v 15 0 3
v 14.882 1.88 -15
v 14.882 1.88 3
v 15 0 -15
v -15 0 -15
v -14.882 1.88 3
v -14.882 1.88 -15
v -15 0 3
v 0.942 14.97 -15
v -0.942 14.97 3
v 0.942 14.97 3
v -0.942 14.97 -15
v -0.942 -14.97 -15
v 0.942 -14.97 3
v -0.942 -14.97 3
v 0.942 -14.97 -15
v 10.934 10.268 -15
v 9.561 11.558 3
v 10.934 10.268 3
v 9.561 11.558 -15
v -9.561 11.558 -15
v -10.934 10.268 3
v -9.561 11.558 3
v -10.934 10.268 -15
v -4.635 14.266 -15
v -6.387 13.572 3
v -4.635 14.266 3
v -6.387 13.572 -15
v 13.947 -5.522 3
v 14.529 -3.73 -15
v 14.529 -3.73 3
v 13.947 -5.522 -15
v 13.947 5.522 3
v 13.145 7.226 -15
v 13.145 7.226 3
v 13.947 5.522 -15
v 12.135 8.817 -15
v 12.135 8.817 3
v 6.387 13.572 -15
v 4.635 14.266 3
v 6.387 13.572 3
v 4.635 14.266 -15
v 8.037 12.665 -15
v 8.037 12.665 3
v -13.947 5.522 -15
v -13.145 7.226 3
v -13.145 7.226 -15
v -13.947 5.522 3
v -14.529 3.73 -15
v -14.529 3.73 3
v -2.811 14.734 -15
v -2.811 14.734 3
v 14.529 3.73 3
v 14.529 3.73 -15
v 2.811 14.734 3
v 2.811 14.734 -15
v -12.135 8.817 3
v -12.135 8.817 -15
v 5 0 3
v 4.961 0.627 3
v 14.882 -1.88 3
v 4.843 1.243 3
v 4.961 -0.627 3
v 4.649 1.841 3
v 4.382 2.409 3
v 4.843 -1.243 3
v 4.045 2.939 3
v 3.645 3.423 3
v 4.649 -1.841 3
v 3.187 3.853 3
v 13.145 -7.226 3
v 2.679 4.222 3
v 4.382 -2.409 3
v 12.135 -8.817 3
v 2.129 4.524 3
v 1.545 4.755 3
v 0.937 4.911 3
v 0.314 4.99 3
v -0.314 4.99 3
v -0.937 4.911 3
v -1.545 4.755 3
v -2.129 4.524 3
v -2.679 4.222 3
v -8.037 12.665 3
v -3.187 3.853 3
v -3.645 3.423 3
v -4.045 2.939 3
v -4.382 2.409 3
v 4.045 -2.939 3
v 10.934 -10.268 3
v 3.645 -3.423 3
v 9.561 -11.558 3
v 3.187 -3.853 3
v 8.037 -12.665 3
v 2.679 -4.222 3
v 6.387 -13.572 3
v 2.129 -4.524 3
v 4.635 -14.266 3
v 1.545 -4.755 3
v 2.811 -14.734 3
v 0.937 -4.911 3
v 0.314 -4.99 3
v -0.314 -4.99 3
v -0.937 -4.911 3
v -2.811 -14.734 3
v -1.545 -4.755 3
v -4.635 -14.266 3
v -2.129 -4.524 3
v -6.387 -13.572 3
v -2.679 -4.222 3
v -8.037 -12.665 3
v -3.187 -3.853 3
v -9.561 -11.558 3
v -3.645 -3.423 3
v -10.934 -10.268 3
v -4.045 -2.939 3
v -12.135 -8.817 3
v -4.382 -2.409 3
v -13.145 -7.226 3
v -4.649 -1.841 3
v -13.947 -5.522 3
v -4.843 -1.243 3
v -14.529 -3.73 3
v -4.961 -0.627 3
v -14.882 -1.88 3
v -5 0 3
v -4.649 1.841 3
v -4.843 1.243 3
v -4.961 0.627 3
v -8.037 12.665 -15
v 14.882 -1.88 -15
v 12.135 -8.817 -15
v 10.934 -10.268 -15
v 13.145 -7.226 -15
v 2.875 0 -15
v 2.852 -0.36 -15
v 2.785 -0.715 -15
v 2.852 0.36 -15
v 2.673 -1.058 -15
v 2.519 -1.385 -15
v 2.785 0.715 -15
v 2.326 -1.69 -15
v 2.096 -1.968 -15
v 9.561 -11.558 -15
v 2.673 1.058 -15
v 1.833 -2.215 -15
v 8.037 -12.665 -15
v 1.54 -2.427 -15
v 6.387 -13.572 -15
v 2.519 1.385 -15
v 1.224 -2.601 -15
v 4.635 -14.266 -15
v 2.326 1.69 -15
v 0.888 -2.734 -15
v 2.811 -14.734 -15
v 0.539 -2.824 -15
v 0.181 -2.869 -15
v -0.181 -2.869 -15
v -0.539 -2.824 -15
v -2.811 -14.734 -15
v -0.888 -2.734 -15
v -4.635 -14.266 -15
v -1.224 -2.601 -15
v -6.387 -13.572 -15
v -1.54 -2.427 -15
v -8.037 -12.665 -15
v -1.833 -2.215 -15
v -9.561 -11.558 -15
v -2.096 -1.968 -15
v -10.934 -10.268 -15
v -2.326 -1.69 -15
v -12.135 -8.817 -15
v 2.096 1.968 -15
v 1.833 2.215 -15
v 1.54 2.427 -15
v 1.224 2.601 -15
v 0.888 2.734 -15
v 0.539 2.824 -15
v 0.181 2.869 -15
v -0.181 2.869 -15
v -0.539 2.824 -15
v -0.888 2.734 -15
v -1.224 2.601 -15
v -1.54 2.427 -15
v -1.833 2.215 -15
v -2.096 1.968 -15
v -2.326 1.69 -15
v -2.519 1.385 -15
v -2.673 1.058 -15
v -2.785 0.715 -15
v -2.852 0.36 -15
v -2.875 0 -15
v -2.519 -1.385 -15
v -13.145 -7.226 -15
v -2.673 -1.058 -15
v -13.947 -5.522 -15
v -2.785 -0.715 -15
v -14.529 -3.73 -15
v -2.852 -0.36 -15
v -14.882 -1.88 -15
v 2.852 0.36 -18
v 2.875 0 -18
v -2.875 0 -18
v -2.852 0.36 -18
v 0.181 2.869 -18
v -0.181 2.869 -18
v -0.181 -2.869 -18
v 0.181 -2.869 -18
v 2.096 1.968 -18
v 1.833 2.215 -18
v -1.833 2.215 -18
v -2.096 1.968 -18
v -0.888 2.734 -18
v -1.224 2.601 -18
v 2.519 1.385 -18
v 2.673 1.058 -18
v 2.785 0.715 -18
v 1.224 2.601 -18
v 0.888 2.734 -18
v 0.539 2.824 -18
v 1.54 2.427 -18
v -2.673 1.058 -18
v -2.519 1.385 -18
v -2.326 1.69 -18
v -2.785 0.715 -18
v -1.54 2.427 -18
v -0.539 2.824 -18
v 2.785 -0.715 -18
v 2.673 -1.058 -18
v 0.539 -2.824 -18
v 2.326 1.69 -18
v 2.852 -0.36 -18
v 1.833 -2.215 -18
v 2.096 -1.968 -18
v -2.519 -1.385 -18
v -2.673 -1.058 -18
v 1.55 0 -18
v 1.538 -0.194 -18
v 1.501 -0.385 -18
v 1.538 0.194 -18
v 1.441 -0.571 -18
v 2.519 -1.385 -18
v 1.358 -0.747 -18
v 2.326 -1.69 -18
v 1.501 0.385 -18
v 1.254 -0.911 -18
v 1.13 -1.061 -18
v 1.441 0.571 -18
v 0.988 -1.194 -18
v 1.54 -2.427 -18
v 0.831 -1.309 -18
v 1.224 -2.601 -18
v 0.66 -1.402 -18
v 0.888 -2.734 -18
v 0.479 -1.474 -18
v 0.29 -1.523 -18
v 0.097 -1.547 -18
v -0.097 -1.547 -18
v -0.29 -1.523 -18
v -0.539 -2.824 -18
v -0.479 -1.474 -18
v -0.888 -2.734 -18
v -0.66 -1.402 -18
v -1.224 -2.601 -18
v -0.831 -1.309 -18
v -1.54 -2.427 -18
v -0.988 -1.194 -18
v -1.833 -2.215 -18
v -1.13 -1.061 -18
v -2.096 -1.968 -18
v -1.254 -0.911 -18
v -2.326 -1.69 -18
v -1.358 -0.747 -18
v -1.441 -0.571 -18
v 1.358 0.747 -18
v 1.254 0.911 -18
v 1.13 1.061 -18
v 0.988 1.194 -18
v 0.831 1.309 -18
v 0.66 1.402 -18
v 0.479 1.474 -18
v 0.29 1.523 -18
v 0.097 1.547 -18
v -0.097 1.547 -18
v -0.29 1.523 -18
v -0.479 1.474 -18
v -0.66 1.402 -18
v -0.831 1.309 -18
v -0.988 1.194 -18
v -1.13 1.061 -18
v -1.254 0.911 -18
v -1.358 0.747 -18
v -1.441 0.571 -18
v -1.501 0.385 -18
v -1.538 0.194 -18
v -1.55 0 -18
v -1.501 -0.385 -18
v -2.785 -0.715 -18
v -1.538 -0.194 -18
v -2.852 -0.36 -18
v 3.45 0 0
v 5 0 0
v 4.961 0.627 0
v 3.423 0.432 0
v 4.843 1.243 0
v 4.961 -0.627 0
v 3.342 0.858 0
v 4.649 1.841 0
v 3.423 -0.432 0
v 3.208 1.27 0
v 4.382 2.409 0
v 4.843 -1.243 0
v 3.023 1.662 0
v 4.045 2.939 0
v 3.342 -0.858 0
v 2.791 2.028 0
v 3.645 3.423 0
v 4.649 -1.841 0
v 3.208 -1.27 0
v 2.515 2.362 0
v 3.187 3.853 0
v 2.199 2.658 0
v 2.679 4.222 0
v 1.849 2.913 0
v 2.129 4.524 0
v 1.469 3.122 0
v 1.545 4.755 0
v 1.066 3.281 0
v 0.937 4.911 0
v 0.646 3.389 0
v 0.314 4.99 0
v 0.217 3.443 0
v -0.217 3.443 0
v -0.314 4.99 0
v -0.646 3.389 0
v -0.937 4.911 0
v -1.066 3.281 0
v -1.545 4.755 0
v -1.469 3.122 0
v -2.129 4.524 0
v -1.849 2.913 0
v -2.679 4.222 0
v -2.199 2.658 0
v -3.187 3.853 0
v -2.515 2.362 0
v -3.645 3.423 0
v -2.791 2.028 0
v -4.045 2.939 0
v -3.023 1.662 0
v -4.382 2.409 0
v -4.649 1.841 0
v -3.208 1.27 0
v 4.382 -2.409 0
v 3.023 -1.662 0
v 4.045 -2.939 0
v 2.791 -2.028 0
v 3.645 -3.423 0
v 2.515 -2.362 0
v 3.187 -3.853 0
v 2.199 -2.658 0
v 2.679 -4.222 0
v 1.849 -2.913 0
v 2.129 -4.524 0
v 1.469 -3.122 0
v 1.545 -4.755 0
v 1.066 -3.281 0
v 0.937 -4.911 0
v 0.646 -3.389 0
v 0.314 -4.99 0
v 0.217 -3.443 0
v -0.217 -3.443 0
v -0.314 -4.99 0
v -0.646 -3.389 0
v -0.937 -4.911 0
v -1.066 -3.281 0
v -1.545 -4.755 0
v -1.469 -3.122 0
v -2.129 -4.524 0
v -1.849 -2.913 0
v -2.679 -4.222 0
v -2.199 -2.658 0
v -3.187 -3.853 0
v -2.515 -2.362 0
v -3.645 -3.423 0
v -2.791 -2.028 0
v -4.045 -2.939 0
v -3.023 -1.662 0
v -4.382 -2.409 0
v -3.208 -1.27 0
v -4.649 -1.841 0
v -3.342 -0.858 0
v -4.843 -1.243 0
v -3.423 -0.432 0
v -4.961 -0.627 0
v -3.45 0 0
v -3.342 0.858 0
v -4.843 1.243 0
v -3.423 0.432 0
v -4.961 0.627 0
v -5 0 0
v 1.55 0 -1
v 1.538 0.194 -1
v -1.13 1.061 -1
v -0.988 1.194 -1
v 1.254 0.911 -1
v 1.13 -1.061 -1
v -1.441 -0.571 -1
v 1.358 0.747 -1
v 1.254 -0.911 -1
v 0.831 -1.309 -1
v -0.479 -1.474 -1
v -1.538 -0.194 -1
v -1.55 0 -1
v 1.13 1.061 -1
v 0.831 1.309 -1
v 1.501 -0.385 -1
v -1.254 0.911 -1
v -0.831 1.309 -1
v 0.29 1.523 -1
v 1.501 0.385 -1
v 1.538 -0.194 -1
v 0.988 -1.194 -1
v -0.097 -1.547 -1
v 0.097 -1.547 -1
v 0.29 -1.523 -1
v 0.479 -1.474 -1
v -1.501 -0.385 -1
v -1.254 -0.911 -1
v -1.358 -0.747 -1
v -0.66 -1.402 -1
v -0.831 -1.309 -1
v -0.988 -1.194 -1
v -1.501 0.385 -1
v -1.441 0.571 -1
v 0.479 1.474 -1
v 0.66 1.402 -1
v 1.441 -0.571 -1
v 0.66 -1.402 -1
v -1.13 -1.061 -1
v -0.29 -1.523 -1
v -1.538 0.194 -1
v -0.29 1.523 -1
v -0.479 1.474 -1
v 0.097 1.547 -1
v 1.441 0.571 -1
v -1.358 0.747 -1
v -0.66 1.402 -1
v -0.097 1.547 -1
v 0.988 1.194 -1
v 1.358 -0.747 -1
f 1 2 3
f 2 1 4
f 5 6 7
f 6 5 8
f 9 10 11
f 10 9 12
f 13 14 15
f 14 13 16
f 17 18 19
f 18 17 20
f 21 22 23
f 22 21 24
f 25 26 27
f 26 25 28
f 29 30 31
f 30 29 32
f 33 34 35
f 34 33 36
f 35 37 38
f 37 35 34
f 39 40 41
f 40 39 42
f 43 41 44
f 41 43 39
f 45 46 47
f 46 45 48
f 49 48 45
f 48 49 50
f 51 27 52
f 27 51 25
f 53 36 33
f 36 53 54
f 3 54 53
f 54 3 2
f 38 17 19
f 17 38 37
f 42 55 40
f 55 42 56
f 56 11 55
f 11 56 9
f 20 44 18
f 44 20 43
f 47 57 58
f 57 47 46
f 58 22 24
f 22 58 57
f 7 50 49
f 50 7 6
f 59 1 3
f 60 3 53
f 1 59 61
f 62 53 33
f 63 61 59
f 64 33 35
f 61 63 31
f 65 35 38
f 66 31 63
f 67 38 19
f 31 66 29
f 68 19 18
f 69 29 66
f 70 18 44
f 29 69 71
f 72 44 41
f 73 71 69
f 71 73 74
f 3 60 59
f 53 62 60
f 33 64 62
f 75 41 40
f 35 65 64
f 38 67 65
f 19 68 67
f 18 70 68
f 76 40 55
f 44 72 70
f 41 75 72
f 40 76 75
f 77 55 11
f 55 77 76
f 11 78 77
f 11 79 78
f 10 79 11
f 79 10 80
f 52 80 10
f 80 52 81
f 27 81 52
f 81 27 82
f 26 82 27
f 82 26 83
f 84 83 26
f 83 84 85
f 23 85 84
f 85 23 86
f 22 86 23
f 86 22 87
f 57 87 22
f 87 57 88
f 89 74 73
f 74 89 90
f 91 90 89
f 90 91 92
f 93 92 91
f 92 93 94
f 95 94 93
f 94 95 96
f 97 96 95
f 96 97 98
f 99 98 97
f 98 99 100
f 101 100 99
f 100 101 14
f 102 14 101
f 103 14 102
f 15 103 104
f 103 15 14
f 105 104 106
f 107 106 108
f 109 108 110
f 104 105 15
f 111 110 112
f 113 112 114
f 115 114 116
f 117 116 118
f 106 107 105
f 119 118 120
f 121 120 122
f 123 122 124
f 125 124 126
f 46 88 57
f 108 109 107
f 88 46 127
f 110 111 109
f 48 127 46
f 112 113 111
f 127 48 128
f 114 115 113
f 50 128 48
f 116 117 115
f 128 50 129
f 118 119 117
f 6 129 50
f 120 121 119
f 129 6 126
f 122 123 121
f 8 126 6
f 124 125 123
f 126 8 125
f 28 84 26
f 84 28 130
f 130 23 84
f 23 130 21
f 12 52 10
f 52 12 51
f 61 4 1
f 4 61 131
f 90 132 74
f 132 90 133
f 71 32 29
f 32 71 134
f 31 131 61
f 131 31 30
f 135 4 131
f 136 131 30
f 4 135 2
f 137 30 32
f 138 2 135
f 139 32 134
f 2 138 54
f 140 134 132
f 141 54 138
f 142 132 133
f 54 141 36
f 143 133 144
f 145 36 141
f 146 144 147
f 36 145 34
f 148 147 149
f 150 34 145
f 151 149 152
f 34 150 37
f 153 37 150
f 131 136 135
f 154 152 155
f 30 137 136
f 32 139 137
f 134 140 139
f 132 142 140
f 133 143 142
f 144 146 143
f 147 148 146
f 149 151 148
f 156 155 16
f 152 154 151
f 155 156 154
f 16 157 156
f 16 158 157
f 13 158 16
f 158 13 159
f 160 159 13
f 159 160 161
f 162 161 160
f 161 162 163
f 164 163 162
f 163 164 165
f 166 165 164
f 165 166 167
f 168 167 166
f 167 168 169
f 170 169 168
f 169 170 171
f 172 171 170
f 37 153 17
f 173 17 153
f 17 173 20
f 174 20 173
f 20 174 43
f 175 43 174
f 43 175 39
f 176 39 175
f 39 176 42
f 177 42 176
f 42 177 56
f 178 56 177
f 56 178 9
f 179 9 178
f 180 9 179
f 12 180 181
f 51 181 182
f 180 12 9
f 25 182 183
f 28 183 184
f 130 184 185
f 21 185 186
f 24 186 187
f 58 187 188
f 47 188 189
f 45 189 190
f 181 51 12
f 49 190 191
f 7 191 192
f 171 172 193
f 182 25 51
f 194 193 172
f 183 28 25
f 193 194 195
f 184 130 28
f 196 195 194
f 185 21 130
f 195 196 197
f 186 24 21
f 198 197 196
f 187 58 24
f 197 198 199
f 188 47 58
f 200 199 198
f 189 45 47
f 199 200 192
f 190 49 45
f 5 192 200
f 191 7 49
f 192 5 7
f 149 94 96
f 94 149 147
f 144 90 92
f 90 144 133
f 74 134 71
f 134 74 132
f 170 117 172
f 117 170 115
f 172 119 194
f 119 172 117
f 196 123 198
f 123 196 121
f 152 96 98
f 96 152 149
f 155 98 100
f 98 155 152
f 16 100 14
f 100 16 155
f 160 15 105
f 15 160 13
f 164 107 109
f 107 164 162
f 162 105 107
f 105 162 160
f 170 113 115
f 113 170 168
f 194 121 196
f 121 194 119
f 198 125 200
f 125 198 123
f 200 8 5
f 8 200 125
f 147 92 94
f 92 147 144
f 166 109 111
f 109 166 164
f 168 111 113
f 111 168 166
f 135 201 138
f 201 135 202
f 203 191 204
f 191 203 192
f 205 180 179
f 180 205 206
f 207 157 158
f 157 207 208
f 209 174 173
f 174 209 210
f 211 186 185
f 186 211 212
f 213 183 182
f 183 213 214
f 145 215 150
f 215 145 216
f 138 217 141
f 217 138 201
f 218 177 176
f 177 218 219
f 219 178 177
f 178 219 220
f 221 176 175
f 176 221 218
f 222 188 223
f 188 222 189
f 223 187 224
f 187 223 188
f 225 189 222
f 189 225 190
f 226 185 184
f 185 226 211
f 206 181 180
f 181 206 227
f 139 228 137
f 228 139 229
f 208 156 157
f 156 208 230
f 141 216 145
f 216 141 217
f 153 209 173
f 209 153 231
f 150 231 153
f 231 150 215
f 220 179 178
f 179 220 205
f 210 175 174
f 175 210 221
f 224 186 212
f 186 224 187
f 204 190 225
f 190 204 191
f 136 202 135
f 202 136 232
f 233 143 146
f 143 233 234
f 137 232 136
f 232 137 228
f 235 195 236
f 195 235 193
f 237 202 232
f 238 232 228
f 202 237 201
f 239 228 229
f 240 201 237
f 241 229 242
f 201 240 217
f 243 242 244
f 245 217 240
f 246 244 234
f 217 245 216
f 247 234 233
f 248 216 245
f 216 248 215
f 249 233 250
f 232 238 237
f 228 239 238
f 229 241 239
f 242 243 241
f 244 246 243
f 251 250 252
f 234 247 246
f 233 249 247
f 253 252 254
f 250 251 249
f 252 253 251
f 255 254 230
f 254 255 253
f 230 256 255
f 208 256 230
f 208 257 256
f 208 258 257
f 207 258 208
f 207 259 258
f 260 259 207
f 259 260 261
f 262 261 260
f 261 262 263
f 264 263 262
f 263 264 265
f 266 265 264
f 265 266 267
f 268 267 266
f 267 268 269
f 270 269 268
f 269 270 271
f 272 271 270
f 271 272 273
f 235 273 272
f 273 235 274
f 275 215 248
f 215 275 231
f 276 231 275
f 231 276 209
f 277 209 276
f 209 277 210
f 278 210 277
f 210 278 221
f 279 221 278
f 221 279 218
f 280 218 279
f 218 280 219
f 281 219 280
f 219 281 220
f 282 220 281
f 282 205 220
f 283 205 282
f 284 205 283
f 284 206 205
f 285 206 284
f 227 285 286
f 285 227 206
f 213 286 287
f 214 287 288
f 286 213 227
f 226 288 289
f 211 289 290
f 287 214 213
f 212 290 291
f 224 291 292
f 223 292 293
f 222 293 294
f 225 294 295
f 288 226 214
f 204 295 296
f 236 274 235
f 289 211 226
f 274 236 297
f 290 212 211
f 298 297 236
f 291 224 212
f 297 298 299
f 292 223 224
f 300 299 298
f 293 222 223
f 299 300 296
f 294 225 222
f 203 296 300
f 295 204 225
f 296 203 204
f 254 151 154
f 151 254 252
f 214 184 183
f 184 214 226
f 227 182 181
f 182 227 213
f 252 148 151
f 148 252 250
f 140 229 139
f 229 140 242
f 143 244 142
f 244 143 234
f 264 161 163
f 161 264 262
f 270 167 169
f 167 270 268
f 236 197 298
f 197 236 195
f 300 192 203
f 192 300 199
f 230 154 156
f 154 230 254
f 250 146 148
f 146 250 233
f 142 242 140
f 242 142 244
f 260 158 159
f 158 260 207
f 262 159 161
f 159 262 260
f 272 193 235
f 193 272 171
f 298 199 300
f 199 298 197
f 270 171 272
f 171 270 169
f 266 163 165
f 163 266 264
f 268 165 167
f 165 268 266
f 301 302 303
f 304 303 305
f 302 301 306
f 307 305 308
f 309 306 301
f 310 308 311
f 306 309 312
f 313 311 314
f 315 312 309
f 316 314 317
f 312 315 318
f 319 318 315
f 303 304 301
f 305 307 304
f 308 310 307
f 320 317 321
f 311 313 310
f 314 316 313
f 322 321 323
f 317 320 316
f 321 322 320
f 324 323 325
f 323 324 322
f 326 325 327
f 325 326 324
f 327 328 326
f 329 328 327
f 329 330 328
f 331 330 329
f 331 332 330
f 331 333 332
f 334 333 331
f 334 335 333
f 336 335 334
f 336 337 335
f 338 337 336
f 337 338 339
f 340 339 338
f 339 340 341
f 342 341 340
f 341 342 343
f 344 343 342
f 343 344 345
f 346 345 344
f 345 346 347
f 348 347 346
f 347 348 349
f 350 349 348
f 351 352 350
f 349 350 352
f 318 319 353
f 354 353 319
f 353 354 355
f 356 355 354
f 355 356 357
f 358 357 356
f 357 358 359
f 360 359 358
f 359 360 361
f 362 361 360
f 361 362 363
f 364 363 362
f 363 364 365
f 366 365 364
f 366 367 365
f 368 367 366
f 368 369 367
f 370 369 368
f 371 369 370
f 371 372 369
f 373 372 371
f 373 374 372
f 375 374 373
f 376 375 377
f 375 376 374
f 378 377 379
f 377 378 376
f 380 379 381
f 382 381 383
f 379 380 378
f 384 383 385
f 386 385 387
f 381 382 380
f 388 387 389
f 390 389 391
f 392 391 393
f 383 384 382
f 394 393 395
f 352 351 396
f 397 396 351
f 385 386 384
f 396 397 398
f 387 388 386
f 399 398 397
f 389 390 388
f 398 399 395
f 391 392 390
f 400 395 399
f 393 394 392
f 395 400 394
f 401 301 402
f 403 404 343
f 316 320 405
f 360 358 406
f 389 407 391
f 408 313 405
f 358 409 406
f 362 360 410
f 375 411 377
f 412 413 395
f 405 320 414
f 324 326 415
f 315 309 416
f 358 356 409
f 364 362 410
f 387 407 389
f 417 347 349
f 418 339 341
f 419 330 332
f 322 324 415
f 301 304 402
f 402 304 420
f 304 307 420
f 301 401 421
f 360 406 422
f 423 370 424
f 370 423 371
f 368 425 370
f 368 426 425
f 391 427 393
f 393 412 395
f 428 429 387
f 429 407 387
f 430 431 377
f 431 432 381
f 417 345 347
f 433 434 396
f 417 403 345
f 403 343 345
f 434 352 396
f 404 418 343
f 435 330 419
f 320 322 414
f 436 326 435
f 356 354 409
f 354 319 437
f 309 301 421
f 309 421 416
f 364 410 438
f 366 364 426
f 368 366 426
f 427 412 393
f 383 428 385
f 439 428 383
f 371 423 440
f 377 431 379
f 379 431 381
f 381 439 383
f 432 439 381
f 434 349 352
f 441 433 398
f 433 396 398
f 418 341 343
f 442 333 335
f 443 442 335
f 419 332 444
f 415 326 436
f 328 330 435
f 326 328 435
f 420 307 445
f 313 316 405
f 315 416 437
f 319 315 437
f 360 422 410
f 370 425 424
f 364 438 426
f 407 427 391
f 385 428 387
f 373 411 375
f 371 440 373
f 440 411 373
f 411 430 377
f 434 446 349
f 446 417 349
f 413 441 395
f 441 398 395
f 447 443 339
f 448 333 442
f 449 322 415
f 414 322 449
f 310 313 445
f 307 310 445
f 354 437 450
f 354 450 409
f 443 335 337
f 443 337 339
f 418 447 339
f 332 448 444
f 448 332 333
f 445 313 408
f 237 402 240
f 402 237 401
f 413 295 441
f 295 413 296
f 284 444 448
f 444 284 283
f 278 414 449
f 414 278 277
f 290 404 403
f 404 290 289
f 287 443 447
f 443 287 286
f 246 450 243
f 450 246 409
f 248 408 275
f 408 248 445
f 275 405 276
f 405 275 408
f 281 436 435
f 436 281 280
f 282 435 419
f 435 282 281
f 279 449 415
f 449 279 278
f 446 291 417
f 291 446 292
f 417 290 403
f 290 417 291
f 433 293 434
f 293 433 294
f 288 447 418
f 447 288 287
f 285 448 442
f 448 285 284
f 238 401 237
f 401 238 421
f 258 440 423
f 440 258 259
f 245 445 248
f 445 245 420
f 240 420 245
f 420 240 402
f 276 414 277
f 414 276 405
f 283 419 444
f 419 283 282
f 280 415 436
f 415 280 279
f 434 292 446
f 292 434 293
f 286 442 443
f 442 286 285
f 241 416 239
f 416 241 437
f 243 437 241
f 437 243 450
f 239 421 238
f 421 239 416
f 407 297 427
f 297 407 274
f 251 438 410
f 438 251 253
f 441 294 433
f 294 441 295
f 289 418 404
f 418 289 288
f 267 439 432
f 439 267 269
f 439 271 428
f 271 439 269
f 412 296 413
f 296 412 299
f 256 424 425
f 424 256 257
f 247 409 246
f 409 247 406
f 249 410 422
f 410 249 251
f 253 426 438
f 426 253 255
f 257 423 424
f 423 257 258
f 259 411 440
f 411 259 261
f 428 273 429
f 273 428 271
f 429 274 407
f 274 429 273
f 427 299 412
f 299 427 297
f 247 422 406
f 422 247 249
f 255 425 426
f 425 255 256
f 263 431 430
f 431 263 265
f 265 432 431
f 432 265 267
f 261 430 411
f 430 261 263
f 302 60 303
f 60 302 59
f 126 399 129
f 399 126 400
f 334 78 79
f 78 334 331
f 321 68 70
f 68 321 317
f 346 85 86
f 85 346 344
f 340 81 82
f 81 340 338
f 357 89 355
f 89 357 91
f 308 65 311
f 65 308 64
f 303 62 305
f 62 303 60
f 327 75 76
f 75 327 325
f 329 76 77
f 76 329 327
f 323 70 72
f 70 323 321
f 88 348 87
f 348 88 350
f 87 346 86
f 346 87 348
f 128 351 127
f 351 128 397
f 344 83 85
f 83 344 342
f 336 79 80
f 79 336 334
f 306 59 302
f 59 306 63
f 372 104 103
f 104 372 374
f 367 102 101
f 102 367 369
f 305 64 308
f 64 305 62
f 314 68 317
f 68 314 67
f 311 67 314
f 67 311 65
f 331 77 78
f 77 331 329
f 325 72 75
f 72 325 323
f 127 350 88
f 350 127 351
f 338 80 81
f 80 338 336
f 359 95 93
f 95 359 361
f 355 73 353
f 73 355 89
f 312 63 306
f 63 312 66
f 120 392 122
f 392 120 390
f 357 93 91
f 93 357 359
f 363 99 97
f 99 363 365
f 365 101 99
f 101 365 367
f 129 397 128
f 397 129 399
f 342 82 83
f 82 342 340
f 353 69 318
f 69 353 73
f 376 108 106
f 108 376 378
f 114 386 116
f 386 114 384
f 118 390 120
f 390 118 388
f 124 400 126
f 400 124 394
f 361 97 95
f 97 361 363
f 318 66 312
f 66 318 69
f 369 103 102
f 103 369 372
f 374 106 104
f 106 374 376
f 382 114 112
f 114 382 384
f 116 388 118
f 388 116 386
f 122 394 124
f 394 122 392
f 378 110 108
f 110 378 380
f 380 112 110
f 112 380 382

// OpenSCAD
$fn = 50;


difference() {
	union() {
		translate(v = [0, 0, -15.0000000000]) {
			cylinder(h = 18, r = 15.0000000000);
		}
		#translate(v = [0, 0, -18.0000000000]) {
			cylinder(h = 18, r = 2.8750000000);
		}
	}
	union() {
		translate(v = [0, 0, 0]) {
			rotate(a = [0, 0, 0]) {
				difference() {
					union() {
						translate(v = [0, 0, -18.0000000000]) {
							cylinder(h = 18, r = 1.2500000000);
						}
						translate(v = [0, 0, -1.0000000000]) {
							cylinder(h = 1.0000000000, r1 = 1.5500000000, r2 = 3.4500000000);
						}
						translate(v = [0, 0, -18.0000000000]) {
							cylinder(h = 18, r = 1.5500000000);
						}
						translate(v = [0, 0, -18.0000000000]) {
							cylinder(h = 18, r = 1.2500000000);
						}
					}
					union();
				}
			}
		}
		#cylinder(h = 3, r = 5.0000000000);
	}
}
